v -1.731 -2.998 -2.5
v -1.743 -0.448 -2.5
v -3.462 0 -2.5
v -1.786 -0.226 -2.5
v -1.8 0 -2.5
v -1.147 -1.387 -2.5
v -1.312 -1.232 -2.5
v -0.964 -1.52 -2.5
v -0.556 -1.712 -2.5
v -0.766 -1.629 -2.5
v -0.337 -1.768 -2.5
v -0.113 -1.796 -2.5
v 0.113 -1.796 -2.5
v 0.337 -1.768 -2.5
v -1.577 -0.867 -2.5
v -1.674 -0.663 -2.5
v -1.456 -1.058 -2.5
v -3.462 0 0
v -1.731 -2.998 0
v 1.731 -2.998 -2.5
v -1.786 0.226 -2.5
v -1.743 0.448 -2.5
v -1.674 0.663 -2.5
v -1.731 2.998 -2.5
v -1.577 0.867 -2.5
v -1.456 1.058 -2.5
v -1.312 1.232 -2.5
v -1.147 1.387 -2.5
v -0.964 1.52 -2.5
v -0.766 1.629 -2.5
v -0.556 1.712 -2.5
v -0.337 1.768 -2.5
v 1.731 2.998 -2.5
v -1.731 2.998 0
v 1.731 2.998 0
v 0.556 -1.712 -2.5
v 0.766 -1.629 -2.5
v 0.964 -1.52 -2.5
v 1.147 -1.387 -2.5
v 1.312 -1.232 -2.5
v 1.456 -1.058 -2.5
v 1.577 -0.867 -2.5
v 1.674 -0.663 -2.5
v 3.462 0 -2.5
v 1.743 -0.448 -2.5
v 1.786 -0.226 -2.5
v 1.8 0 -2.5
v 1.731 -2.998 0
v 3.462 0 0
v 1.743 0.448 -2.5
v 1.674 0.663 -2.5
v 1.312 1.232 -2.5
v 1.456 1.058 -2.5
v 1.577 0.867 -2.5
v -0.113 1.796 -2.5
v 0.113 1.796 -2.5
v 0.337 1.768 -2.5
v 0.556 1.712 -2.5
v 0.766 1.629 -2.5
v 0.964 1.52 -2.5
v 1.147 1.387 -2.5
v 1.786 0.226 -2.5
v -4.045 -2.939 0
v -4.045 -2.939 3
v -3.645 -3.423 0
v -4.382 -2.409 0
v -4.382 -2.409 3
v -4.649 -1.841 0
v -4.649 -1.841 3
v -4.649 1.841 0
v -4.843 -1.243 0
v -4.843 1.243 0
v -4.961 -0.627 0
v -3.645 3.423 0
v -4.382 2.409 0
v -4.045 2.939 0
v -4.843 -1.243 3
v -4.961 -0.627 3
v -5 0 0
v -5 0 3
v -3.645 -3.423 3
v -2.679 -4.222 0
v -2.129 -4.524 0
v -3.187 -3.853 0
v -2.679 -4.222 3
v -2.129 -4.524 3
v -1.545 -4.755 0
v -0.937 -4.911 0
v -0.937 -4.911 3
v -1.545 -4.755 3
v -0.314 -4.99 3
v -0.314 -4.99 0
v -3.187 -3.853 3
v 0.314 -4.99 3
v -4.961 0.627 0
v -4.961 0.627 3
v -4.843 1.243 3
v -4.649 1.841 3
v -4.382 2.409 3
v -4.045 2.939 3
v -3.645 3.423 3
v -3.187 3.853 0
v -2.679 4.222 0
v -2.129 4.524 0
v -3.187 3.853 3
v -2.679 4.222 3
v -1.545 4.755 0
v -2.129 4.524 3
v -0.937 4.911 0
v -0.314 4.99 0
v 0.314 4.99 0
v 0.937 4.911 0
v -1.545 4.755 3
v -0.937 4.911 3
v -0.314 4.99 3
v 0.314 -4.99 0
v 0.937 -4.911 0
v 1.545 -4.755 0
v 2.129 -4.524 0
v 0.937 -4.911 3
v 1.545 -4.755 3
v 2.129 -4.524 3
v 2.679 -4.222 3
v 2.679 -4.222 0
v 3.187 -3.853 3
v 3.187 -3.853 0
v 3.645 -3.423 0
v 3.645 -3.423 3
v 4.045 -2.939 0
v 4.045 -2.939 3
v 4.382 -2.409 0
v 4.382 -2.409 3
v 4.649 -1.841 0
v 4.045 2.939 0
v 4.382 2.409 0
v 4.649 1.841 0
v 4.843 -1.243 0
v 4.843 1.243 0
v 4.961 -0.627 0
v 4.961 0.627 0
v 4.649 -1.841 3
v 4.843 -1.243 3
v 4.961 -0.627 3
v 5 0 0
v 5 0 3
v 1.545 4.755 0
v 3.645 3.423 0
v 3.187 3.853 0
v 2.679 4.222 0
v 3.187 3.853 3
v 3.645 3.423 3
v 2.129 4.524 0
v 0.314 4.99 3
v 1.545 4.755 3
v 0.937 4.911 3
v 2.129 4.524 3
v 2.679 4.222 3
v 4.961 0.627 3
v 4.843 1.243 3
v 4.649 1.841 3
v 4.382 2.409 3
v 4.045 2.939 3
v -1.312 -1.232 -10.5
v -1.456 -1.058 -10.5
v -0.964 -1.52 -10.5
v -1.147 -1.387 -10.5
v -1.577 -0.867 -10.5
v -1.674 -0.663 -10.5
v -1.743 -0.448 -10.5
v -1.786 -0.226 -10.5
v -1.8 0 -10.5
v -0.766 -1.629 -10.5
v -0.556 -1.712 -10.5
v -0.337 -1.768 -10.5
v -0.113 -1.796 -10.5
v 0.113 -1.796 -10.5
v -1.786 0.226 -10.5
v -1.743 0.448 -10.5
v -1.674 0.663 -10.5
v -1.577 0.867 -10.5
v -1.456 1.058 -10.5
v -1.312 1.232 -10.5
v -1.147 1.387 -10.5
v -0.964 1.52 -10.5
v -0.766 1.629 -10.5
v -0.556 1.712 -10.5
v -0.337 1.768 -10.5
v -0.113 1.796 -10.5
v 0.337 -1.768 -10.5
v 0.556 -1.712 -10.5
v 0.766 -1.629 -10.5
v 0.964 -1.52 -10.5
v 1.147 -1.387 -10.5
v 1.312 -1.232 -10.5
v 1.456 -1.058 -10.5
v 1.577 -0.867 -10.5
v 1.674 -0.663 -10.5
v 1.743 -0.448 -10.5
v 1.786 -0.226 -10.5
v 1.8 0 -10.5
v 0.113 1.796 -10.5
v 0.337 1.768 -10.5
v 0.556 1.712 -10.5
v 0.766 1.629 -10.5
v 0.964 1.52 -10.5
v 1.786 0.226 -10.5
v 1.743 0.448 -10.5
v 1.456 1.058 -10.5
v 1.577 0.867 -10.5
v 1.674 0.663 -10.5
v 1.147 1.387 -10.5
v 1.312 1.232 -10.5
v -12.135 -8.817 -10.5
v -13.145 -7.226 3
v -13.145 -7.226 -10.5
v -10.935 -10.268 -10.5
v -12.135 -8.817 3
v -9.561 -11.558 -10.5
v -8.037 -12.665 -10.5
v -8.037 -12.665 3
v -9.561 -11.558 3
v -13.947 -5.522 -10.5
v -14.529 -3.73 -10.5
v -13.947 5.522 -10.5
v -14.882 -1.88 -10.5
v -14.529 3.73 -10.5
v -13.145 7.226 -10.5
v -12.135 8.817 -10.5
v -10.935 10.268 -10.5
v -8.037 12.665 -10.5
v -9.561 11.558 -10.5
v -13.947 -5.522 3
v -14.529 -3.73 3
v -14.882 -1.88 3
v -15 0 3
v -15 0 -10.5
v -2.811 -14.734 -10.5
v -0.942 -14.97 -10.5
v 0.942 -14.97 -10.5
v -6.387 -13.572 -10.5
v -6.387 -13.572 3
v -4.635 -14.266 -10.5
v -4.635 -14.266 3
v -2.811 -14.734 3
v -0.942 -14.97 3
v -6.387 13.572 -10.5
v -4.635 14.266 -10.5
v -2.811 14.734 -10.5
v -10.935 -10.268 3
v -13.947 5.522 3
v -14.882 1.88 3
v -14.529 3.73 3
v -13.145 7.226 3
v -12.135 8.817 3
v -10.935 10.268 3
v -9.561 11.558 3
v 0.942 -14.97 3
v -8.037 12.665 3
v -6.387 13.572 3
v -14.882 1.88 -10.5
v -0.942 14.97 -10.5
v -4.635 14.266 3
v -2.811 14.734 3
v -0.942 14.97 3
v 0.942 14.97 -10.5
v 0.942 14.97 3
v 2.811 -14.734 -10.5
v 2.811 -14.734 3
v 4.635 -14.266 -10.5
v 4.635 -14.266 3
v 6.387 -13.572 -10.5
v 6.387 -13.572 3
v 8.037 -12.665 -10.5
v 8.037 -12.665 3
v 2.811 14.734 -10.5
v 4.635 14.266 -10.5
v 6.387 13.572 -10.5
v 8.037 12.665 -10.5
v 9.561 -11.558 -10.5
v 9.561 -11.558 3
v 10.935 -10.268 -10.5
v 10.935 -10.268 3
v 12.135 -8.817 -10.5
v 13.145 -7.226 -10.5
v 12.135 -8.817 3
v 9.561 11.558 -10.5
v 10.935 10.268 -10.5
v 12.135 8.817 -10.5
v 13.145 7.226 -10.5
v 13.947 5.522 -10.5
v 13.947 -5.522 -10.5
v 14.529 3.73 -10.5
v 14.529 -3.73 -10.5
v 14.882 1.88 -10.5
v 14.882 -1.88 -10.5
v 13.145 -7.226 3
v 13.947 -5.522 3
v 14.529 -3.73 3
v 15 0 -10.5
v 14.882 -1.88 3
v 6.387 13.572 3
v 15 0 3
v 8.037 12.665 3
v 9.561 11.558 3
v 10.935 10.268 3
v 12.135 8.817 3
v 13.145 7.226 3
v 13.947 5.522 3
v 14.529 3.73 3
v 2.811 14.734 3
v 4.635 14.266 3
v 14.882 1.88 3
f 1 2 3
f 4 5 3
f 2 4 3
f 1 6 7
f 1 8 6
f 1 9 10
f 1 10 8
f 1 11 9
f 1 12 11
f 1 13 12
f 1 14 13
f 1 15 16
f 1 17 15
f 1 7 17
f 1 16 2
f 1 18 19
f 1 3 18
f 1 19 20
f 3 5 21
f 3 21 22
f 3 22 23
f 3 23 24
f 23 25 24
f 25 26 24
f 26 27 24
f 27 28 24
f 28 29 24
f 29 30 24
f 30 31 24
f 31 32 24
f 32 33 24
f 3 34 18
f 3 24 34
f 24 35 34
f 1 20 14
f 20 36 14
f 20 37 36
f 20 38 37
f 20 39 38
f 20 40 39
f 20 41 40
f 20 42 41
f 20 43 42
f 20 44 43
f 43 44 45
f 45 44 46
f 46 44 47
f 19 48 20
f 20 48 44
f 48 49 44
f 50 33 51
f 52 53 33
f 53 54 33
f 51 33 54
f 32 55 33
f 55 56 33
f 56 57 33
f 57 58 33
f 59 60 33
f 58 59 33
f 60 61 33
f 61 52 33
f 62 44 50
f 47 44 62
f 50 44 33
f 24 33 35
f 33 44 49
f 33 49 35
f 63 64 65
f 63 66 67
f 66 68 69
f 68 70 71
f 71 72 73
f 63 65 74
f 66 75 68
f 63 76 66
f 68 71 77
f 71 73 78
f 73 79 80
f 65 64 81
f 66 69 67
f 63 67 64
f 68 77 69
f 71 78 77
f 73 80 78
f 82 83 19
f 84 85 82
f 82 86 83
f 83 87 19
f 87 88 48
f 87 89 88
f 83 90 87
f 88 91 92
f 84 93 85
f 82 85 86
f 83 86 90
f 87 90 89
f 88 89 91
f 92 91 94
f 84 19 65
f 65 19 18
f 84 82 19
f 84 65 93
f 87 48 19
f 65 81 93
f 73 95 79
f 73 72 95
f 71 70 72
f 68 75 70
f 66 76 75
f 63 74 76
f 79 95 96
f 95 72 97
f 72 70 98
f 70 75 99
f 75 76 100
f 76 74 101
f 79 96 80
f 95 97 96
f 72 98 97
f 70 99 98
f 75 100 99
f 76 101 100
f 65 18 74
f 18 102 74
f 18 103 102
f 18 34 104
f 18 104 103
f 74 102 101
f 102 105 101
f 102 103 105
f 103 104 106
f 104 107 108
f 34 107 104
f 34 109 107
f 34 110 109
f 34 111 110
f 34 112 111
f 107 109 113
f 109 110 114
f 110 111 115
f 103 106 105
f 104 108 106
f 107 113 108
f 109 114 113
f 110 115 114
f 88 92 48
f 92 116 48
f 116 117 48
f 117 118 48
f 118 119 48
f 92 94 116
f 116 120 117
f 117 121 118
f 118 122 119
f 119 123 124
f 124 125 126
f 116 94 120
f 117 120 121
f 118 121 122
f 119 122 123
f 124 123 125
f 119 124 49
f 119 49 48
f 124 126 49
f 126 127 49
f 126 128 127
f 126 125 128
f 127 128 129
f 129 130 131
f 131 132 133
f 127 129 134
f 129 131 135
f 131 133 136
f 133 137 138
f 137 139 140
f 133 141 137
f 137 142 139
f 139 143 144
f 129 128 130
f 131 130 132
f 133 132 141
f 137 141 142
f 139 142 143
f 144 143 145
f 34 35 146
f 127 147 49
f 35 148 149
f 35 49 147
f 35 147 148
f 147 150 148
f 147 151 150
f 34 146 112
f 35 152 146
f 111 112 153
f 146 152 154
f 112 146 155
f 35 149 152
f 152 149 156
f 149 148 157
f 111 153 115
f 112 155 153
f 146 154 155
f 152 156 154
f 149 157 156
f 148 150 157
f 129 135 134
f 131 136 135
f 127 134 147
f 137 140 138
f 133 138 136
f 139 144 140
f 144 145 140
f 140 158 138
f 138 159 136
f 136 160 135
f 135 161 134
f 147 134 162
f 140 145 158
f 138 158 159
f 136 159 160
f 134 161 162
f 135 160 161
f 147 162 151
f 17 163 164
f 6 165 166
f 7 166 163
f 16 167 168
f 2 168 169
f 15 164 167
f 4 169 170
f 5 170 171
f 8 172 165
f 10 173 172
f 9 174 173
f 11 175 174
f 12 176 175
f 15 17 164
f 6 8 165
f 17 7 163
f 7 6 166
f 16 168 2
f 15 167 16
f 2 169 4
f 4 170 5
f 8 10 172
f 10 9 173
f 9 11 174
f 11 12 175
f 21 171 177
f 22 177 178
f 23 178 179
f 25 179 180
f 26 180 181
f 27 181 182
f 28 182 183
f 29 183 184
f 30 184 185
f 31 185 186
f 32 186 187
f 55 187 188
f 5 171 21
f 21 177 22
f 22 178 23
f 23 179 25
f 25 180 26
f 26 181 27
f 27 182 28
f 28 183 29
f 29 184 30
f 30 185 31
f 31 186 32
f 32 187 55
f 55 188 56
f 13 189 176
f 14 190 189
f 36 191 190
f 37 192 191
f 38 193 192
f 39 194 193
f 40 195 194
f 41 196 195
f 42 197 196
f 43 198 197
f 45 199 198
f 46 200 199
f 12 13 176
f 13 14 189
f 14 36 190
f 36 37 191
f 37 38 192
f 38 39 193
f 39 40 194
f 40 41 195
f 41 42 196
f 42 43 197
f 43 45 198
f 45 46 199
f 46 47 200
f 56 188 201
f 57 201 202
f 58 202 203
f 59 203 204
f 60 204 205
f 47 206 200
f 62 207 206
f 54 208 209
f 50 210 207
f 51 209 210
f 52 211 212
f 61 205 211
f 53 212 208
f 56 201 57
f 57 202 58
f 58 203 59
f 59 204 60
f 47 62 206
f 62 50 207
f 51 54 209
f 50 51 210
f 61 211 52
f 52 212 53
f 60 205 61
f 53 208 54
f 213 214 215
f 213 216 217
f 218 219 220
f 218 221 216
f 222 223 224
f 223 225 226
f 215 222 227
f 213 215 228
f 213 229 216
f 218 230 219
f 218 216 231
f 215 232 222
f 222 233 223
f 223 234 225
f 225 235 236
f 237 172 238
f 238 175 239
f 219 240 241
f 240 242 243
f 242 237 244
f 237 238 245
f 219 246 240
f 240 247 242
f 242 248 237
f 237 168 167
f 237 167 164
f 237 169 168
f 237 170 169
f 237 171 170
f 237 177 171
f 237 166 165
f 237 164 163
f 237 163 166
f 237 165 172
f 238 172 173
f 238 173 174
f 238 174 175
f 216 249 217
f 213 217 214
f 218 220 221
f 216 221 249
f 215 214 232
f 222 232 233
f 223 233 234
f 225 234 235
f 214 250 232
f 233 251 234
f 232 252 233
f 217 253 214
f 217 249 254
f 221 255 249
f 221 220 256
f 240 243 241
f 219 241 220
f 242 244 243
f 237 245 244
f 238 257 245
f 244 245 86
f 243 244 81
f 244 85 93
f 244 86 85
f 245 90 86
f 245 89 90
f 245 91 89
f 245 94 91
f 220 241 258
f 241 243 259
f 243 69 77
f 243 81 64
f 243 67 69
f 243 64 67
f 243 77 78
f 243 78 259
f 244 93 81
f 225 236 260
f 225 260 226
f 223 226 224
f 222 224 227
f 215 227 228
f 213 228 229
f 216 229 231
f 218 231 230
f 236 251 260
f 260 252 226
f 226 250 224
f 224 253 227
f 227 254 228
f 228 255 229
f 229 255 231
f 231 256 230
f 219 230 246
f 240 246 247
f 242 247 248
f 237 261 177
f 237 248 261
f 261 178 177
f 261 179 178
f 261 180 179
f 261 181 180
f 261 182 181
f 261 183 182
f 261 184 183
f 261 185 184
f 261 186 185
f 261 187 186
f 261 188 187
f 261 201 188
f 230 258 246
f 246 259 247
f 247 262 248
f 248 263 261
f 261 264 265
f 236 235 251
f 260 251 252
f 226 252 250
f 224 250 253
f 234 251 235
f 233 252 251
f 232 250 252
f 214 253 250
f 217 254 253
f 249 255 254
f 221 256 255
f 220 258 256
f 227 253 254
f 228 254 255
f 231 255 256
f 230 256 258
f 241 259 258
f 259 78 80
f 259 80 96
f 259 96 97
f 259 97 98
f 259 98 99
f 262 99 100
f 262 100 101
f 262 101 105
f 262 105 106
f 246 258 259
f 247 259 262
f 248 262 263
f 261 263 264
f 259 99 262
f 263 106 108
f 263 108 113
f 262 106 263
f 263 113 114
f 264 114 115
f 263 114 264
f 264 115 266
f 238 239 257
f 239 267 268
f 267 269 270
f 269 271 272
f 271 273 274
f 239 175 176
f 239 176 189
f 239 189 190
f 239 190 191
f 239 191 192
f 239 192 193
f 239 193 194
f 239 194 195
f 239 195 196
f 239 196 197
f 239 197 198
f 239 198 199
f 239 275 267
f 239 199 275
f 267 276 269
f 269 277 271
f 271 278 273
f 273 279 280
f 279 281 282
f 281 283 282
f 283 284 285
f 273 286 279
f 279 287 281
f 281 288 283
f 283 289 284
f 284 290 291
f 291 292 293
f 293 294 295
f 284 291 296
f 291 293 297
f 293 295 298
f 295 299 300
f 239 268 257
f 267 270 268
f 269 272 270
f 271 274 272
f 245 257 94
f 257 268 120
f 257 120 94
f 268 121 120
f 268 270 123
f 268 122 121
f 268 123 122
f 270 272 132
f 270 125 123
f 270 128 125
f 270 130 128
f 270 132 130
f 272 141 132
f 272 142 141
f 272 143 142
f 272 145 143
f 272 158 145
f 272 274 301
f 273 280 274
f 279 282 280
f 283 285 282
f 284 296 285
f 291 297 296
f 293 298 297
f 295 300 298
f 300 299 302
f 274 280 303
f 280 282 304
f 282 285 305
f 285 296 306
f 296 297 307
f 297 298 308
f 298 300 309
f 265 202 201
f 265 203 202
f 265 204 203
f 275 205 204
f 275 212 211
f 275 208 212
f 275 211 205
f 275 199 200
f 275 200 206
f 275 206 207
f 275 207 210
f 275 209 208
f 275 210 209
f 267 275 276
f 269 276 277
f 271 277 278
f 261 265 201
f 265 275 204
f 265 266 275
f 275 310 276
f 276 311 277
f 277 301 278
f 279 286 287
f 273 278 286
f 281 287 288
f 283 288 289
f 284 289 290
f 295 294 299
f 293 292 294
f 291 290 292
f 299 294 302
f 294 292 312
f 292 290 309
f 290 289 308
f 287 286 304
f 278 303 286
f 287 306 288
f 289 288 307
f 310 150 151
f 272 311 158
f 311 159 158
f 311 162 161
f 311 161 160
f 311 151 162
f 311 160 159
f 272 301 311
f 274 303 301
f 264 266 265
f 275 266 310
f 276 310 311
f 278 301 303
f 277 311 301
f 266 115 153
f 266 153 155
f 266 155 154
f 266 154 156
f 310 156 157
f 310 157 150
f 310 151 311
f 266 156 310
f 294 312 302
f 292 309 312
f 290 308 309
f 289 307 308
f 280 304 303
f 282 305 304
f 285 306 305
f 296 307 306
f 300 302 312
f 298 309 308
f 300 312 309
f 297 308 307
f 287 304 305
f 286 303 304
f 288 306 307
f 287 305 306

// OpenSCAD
$fn = 50;


difference() {
	union() {
		translate(v = [0, 0, -10.5000000000]) {
			cylinder(h = 13.5000000000, r = 15.0000000000);
		}
	}
	union() {
		translate(v = [0, 0, 0]) {
			rotate(a = [0, 0, 0]) {
				difference() {
					union() {
						translate(v = [0, 0, -2.5000000000]) {
							linear_extrude(height = 2.5000000000) {
								polygon(points = [[3.4620000000, 0.0000000000], [1.7310000000, 2.9981799479], [-1.7310000000, 2.9981799479], [-3.4620000000, 0.0000000000], [-1.7310000000, -2.9981799479], [1.7310000000, -2.9981799479]]);
							}
						}
					}
					union();
				}
			}
		}
		#cylinder(h = 3, r = 5.0000000000);
		#translate(v = [0, 0, -100.0000000000]) {
			cylinder(h = 200, r = 1.8000000000);
		}
	}
}
